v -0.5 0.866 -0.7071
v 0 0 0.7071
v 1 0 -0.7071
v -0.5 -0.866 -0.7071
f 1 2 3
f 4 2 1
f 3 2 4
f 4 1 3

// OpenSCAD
$fn = 3;
cylinder(h = sqrt(2) * 1, r1 = 1, r2 = 0, center = true);
